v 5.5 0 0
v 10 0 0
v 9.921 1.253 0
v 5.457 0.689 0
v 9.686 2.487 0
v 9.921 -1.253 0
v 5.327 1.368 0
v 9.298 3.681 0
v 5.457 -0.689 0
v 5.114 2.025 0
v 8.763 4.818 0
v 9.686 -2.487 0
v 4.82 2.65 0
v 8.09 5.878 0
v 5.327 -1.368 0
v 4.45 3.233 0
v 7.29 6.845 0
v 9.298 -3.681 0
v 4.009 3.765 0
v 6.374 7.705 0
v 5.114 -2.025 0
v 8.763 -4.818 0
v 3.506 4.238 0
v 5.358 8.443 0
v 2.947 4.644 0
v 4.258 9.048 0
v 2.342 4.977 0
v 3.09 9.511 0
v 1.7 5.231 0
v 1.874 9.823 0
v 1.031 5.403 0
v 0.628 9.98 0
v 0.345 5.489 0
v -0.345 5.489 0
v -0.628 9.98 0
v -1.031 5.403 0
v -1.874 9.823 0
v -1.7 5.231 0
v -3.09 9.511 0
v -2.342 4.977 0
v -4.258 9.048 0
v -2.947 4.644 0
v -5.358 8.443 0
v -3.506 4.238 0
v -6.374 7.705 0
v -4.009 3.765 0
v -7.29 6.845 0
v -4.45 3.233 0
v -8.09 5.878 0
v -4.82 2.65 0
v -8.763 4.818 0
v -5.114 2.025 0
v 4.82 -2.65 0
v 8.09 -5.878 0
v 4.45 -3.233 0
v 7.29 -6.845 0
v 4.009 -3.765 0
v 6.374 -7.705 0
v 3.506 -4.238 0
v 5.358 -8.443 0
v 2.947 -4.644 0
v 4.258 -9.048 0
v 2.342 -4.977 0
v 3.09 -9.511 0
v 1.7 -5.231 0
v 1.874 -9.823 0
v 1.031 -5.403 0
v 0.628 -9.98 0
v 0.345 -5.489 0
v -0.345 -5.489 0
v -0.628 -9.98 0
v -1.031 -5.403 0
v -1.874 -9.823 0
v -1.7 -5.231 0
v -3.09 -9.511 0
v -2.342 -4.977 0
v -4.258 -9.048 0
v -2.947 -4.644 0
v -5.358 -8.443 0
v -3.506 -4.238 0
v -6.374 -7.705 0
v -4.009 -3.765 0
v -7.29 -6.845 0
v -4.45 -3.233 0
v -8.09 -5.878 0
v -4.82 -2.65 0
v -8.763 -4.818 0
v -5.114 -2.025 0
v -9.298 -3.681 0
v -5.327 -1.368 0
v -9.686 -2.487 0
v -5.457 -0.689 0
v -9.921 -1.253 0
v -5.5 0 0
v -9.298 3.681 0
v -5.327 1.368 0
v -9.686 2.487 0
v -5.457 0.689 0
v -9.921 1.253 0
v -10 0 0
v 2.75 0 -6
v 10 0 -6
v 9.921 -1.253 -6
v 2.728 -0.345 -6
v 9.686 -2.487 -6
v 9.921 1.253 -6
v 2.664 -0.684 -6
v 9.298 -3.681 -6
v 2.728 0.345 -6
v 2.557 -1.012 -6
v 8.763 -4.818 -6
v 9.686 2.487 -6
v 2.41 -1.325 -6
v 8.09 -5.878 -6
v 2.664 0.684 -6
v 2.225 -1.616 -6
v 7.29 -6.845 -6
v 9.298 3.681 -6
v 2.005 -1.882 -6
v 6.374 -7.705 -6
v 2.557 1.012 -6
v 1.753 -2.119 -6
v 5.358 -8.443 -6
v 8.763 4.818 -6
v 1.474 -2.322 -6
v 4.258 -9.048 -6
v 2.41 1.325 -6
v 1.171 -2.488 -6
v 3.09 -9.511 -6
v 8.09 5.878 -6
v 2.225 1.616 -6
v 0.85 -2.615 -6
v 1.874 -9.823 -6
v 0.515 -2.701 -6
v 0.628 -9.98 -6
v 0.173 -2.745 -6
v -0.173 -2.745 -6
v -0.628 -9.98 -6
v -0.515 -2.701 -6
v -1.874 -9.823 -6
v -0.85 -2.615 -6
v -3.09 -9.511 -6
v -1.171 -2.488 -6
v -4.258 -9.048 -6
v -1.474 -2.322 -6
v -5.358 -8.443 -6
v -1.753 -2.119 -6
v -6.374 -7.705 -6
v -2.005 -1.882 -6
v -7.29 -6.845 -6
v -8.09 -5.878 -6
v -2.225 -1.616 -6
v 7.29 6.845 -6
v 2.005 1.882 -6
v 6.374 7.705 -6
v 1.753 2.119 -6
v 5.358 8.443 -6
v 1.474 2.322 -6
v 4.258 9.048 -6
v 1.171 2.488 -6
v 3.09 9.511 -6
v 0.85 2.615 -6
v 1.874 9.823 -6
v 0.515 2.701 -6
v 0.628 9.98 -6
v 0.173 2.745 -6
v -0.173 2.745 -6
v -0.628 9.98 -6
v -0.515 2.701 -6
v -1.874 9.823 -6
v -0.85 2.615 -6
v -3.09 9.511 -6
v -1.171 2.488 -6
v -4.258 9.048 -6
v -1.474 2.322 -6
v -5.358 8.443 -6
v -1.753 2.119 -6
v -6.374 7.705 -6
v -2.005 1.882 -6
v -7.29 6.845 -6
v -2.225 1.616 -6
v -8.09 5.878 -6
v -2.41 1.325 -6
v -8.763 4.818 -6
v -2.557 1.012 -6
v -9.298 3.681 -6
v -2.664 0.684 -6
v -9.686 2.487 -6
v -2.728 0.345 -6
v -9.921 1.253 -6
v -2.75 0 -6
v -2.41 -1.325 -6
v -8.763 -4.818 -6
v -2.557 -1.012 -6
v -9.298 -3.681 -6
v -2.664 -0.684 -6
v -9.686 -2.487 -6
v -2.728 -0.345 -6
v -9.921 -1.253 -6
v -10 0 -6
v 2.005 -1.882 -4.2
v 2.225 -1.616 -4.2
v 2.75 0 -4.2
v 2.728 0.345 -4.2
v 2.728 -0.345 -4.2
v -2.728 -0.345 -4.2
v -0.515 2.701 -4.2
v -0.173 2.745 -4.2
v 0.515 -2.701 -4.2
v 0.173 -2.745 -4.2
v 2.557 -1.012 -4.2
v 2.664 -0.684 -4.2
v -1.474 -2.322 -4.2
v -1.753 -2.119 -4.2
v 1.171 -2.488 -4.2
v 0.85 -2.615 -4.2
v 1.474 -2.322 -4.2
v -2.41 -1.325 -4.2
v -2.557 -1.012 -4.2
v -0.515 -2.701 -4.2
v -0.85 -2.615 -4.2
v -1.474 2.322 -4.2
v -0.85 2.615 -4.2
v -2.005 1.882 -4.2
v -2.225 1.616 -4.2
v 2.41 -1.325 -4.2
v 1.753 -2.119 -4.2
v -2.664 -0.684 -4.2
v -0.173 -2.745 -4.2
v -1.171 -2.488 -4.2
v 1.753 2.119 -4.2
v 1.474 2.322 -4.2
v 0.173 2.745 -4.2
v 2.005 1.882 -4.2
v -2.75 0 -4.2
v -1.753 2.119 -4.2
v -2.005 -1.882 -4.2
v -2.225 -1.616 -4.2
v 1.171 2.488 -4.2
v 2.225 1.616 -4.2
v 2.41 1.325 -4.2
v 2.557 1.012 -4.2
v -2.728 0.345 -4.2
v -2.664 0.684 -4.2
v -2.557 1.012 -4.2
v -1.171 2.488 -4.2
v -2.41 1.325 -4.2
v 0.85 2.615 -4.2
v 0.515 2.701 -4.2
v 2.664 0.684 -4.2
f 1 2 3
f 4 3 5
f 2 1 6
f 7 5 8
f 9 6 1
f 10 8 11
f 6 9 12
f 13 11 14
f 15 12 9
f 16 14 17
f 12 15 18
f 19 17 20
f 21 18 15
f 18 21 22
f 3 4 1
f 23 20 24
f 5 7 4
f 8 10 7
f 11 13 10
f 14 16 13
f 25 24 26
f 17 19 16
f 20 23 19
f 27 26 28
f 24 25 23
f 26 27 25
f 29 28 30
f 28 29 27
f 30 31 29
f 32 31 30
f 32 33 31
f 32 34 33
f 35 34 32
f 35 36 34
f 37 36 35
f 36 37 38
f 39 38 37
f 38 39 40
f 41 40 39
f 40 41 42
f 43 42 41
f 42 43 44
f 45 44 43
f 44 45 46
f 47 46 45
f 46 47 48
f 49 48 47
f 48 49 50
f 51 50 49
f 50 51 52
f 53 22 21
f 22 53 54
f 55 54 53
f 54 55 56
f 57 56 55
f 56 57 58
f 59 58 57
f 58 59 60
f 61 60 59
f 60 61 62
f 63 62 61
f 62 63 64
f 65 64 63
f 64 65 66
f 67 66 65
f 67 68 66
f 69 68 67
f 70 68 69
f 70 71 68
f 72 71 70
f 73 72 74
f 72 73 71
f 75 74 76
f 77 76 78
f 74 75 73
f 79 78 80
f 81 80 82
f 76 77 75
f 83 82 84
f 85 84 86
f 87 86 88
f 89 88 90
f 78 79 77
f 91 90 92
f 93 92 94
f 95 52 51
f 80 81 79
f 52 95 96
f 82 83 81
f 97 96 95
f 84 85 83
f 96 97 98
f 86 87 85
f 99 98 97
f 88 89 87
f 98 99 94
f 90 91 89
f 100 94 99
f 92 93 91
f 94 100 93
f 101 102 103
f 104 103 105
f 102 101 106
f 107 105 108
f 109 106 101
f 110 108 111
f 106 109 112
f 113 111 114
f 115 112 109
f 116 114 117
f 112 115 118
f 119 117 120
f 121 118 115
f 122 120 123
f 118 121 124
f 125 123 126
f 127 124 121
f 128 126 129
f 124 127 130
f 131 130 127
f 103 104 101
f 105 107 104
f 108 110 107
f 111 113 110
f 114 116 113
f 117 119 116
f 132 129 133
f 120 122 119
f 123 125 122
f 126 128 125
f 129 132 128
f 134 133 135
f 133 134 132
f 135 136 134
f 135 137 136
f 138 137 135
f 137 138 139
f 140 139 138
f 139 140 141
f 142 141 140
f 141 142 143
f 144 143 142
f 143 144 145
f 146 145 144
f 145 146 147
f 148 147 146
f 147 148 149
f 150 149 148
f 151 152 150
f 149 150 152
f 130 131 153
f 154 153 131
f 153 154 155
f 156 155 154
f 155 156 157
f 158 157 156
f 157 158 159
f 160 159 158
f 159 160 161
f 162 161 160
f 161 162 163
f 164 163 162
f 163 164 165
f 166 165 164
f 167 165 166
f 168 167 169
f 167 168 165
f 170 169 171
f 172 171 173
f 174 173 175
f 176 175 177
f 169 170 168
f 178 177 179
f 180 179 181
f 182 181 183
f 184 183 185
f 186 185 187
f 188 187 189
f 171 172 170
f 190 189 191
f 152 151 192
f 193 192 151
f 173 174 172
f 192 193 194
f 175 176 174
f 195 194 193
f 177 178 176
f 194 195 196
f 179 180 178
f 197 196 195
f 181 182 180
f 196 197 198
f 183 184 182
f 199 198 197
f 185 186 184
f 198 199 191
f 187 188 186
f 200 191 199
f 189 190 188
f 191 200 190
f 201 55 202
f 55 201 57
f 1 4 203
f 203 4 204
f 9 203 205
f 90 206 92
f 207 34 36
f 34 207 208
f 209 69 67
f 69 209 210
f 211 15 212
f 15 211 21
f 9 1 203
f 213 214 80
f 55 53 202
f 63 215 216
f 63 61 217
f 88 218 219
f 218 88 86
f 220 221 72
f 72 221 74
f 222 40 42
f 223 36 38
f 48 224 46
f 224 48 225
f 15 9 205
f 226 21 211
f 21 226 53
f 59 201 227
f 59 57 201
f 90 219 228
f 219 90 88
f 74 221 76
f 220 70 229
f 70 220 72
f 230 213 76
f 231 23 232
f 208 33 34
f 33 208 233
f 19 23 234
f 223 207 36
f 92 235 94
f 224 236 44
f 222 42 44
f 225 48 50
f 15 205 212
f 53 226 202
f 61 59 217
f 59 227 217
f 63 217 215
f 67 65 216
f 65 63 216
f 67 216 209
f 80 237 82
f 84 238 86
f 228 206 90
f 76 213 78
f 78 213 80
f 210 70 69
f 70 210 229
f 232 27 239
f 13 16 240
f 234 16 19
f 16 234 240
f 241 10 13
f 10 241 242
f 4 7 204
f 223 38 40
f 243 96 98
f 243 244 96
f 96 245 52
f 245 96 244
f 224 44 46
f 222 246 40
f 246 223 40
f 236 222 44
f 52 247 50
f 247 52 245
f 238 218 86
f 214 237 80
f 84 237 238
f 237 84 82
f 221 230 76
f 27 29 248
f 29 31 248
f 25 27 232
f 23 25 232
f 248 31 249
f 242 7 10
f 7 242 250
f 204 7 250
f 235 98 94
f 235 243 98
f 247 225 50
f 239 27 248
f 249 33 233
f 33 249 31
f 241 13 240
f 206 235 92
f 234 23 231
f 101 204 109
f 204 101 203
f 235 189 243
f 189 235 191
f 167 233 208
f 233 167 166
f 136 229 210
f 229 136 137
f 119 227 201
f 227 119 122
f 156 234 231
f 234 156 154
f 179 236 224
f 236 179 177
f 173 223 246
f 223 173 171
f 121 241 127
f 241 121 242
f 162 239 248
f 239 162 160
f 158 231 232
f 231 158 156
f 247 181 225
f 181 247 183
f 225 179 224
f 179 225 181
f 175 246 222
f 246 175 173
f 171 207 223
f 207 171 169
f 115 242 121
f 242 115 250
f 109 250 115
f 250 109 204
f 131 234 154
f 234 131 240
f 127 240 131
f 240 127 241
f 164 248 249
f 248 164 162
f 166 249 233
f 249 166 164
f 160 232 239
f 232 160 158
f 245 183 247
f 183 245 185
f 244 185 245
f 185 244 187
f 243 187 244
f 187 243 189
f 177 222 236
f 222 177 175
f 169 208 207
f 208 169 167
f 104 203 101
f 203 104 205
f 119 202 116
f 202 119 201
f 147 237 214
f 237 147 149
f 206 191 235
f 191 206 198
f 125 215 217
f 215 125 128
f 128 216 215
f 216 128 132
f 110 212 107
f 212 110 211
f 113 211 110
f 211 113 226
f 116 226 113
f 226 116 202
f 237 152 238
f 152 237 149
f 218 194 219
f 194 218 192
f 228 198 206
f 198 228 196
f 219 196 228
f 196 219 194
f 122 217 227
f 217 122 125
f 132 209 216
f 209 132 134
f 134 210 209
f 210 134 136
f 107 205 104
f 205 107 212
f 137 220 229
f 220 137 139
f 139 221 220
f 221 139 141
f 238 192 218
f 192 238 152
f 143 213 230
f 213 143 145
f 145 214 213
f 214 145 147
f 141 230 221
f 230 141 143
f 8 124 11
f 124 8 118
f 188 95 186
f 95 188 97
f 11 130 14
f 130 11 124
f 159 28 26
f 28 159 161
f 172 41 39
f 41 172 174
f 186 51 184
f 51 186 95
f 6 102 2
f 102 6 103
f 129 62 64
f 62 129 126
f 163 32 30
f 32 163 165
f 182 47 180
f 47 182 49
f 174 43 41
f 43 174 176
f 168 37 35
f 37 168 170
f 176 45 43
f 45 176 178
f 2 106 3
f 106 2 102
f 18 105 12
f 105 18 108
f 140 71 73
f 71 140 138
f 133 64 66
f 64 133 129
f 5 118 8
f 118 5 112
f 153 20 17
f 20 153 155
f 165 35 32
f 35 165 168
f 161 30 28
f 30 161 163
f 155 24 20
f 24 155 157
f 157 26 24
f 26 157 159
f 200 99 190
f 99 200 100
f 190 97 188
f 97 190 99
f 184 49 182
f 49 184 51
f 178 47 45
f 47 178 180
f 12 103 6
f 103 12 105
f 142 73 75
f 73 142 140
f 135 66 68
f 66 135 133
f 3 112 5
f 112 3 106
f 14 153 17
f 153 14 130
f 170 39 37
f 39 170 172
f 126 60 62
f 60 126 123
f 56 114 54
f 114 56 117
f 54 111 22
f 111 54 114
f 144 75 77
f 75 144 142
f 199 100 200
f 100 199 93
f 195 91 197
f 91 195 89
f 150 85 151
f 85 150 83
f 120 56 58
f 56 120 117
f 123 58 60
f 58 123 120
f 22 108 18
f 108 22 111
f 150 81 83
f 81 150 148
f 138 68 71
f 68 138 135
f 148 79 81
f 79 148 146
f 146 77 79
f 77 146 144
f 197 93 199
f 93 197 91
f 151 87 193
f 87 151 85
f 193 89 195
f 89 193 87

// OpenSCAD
$fn = 50;


difference() {
	union() {
		translate(v = [0, 0, -6.0000000000]) {
			cylinder(h = 6, r = 10.0000000000);
		}
		cylinder(h = 0, r = 19.0000000000);
	}
	union() {
		translate(v = [0, 0, 0]) {
			rotate(a = [0, 0, 0]) {
				difference() {
					union() {
						#translate(v = [0, 0, -6.0000000000]) {
							cylinder(h = 6, r = 2.2500000000);
						}
						#translate(v = [0, 0, -4.2000000000]) {
							cylinder(h = 4.2000000000, r1 = 2.7500000000, r2 = 5.5000000000);
						}
						#translate(v = [0, 0, -6.0000000000]) {
							cylinder(h = 6, r = 2.7500000000);
						}
						#translate(v = [0, 0, -6.0000000000]) {
							cylinder(h = 6, r = 2.2500000000);
						}
					}
					union();
				}
			}
		}
	}
}
